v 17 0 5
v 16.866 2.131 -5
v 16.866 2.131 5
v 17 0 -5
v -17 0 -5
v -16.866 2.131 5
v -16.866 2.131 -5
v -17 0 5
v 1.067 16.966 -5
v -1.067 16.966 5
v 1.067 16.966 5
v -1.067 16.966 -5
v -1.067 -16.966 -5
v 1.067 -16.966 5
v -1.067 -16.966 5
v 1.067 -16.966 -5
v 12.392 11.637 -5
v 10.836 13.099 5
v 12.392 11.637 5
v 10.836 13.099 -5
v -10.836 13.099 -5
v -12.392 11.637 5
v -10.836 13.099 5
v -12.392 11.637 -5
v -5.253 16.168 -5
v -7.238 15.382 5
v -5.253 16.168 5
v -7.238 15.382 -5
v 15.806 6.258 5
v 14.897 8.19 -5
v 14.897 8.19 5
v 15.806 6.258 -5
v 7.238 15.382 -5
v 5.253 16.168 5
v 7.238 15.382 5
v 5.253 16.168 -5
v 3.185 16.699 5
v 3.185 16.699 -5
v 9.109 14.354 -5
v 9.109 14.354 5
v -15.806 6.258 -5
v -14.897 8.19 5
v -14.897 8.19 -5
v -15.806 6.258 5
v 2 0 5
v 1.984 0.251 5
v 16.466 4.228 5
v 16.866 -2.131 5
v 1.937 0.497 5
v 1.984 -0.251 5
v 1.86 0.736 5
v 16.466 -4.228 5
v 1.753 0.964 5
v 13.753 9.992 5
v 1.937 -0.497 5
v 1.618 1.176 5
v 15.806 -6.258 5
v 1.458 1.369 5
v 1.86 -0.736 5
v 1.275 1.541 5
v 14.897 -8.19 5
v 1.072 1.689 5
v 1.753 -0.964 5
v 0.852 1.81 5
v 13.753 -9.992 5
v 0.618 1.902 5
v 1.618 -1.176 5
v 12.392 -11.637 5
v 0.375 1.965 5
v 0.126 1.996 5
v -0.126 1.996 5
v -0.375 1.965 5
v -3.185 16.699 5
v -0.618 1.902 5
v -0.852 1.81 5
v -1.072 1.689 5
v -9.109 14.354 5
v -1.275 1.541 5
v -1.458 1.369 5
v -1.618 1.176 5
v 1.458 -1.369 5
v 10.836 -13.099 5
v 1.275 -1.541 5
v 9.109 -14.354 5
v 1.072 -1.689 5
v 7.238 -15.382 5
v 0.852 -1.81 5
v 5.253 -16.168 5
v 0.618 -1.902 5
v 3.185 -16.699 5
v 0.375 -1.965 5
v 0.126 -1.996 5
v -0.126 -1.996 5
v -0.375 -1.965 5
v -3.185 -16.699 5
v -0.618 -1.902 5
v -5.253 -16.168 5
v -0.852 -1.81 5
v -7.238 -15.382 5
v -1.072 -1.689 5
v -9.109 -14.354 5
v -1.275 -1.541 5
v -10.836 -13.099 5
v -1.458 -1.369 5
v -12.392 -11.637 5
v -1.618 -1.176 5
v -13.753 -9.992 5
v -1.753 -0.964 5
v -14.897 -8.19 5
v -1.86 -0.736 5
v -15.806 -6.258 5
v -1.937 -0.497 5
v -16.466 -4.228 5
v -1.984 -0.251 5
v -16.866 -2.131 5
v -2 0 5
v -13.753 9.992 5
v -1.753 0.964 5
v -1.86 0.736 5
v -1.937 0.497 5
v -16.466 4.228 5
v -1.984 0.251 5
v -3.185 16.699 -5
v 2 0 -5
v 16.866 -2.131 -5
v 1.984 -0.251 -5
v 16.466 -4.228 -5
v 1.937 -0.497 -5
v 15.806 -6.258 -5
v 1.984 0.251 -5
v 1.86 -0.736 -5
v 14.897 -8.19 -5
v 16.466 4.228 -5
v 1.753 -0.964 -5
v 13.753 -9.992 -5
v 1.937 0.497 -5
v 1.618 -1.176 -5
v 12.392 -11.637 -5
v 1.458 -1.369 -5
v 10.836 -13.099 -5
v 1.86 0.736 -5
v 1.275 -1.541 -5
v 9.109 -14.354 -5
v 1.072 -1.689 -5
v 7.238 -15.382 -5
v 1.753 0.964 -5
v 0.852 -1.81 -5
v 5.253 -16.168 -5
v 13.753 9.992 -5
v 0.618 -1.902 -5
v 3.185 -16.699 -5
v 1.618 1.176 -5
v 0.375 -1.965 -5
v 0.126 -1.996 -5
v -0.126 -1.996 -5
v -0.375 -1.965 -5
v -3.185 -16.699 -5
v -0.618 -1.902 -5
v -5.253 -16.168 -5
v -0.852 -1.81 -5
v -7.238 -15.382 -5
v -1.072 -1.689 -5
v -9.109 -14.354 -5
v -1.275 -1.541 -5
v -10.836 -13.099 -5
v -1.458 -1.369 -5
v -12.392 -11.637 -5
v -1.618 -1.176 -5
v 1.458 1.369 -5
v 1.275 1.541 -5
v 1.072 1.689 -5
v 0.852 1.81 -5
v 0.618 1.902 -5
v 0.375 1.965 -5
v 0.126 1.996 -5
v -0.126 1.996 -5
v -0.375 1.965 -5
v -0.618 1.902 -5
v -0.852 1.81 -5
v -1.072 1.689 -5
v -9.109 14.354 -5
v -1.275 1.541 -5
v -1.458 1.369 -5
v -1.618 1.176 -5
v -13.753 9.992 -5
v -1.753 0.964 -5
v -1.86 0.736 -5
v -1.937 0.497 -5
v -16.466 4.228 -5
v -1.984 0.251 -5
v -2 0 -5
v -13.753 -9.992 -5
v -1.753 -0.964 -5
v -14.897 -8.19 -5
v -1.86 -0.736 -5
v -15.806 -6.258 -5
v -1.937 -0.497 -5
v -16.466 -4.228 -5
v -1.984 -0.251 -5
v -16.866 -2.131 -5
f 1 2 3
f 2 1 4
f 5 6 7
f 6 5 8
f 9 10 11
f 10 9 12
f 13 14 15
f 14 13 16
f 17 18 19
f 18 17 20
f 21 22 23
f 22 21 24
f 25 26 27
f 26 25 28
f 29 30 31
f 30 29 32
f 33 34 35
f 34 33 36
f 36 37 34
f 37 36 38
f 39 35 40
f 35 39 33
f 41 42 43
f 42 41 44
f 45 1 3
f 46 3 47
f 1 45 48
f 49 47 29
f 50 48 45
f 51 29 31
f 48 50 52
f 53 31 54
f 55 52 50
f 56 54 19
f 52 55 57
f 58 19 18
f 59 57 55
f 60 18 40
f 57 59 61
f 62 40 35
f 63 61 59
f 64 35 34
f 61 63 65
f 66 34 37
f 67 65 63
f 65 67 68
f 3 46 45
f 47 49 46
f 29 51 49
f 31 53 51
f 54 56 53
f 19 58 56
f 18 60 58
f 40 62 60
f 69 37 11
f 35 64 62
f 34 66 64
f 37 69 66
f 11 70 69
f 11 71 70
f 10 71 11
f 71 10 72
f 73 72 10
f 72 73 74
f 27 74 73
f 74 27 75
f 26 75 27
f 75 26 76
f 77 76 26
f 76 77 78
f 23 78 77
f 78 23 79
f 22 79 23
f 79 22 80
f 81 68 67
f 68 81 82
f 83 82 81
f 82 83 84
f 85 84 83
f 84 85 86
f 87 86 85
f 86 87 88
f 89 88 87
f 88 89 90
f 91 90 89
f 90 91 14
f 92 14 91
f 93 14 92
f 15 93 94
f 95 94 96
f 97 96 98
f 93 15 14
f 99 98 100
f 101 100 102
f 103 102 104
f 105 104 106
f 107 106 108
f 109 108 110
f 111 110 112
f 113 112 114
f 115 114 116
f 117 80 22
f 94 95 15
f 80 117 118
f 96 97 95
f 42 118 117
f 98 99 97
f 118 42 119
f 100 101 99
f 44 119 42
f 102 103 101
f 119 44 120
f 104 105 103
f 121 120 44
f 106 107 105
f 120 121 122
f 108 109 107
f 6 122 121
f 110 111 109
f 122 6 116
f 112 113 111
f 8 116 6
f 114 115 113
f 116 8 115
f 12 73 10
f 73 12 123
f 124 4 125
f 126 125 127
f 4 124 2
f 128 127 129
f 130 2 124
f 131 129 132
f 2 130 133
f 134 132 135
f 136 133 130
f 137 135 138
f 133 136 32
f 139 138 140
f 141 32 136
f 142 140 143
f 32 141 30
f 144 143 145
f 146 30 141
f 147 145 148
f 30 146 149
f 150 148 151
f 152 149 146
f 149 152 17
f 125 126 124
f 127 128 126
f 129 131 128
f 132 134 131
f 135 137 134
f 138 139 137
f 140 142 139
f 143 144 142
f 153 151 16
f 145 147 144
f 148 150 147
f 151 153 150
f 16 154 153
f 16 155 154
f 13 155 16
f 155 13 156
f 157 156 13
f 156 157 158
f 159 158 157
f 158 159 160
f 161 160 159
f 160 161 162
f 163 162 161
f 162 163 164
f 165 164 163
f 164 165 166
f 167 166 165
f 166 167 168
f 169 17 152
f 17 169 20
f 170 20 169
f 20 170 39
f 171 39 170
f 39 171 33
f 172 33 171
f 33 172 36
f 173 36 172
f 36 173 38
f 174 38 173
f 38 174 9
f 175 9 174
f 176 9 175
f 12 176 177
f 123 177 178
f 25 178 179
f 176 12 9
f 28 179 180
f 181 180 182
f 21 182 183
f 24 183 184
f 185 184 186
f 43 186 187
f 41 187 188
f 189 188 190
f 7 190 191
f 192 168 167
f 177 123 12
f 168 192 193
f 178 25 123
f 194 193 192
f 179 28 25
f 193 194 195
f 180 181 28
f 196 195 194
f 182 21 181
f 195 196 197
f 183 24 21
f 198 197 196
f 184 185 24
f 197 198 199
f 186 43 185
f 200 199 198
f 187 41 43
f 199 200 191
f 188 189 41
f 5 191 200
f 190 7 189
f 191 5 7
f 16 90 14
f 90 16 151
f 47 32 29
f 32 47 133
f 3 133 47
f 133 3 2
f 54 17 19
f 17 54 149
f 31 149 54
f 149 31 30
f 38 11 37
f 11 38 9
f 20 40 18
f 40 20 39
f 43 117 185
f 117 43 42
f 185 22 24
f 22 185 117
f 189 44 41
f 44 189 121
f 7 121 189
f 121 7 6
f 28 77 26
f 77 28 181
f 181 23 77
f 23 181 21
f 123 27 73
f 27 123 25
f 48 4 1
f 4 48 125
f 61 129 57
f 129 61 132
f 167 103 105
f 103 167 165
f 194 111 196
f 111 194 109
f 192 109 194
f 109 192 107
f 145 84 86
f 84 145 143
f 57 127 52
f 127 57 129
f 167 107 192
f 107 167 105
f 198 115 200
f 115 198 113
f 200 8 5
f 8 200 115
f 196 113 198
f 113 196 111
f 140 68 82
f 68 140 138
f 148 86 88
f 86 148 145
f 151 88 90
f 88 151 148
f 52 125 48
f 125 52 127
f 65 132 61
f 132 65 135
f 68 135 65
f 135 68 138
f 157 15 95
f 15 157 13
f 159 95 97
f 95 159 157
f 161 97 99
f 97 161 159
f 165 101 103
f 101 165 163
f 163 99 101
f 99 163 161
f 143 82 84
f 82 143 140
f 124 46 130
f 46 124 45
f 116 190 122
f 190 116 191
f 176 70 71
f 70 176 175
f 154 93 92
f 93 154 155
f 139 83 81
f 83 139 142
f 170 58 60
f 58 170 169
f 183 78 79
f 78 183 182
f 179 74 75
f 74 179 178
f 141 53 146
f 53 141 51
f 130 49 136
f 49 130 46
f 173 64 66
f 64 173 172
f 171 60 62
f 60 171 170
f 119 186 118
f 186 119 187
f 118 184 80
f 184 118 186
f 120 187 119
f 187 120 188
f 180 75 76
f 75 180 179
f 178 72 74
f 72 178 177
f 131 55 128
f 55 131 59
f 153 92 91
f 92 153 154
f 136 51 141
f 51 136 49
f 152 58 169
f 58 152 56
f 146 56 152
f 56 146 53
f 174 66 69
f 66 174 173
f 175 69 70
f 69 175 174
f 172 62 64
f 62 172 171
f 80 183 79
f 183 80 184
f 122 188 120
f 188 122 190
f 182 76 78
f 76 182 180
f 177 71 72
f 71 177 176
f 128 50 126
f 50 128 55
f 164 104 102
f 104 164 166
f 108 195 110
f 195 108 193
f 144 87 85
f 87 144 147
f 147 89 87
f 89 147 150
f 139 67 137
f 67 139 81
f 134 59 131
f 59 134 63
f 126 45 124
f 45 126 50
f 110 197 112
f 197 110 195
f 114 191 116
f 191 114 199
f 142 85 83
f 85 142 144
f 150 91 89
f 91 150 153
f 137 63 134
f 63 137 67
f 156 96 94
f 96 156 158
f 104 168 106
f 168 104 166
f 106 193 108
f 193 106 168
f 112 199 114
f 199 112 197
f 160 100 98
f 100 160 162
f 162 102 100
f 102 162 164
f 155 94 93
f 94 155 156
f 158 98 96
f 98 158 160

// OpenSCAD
$fn = 50;


difference() {
	union() {
		translate(v = [0, 0, -5.0000000000]) {
			cylinder(h = 10, r = 17.0000000000);
		}
	}
	union() {
		translate(v = [0, 0, -100.0000000000]) {
			cylinder(h = 200, r = 2.0000000000);
		}
	}
}
